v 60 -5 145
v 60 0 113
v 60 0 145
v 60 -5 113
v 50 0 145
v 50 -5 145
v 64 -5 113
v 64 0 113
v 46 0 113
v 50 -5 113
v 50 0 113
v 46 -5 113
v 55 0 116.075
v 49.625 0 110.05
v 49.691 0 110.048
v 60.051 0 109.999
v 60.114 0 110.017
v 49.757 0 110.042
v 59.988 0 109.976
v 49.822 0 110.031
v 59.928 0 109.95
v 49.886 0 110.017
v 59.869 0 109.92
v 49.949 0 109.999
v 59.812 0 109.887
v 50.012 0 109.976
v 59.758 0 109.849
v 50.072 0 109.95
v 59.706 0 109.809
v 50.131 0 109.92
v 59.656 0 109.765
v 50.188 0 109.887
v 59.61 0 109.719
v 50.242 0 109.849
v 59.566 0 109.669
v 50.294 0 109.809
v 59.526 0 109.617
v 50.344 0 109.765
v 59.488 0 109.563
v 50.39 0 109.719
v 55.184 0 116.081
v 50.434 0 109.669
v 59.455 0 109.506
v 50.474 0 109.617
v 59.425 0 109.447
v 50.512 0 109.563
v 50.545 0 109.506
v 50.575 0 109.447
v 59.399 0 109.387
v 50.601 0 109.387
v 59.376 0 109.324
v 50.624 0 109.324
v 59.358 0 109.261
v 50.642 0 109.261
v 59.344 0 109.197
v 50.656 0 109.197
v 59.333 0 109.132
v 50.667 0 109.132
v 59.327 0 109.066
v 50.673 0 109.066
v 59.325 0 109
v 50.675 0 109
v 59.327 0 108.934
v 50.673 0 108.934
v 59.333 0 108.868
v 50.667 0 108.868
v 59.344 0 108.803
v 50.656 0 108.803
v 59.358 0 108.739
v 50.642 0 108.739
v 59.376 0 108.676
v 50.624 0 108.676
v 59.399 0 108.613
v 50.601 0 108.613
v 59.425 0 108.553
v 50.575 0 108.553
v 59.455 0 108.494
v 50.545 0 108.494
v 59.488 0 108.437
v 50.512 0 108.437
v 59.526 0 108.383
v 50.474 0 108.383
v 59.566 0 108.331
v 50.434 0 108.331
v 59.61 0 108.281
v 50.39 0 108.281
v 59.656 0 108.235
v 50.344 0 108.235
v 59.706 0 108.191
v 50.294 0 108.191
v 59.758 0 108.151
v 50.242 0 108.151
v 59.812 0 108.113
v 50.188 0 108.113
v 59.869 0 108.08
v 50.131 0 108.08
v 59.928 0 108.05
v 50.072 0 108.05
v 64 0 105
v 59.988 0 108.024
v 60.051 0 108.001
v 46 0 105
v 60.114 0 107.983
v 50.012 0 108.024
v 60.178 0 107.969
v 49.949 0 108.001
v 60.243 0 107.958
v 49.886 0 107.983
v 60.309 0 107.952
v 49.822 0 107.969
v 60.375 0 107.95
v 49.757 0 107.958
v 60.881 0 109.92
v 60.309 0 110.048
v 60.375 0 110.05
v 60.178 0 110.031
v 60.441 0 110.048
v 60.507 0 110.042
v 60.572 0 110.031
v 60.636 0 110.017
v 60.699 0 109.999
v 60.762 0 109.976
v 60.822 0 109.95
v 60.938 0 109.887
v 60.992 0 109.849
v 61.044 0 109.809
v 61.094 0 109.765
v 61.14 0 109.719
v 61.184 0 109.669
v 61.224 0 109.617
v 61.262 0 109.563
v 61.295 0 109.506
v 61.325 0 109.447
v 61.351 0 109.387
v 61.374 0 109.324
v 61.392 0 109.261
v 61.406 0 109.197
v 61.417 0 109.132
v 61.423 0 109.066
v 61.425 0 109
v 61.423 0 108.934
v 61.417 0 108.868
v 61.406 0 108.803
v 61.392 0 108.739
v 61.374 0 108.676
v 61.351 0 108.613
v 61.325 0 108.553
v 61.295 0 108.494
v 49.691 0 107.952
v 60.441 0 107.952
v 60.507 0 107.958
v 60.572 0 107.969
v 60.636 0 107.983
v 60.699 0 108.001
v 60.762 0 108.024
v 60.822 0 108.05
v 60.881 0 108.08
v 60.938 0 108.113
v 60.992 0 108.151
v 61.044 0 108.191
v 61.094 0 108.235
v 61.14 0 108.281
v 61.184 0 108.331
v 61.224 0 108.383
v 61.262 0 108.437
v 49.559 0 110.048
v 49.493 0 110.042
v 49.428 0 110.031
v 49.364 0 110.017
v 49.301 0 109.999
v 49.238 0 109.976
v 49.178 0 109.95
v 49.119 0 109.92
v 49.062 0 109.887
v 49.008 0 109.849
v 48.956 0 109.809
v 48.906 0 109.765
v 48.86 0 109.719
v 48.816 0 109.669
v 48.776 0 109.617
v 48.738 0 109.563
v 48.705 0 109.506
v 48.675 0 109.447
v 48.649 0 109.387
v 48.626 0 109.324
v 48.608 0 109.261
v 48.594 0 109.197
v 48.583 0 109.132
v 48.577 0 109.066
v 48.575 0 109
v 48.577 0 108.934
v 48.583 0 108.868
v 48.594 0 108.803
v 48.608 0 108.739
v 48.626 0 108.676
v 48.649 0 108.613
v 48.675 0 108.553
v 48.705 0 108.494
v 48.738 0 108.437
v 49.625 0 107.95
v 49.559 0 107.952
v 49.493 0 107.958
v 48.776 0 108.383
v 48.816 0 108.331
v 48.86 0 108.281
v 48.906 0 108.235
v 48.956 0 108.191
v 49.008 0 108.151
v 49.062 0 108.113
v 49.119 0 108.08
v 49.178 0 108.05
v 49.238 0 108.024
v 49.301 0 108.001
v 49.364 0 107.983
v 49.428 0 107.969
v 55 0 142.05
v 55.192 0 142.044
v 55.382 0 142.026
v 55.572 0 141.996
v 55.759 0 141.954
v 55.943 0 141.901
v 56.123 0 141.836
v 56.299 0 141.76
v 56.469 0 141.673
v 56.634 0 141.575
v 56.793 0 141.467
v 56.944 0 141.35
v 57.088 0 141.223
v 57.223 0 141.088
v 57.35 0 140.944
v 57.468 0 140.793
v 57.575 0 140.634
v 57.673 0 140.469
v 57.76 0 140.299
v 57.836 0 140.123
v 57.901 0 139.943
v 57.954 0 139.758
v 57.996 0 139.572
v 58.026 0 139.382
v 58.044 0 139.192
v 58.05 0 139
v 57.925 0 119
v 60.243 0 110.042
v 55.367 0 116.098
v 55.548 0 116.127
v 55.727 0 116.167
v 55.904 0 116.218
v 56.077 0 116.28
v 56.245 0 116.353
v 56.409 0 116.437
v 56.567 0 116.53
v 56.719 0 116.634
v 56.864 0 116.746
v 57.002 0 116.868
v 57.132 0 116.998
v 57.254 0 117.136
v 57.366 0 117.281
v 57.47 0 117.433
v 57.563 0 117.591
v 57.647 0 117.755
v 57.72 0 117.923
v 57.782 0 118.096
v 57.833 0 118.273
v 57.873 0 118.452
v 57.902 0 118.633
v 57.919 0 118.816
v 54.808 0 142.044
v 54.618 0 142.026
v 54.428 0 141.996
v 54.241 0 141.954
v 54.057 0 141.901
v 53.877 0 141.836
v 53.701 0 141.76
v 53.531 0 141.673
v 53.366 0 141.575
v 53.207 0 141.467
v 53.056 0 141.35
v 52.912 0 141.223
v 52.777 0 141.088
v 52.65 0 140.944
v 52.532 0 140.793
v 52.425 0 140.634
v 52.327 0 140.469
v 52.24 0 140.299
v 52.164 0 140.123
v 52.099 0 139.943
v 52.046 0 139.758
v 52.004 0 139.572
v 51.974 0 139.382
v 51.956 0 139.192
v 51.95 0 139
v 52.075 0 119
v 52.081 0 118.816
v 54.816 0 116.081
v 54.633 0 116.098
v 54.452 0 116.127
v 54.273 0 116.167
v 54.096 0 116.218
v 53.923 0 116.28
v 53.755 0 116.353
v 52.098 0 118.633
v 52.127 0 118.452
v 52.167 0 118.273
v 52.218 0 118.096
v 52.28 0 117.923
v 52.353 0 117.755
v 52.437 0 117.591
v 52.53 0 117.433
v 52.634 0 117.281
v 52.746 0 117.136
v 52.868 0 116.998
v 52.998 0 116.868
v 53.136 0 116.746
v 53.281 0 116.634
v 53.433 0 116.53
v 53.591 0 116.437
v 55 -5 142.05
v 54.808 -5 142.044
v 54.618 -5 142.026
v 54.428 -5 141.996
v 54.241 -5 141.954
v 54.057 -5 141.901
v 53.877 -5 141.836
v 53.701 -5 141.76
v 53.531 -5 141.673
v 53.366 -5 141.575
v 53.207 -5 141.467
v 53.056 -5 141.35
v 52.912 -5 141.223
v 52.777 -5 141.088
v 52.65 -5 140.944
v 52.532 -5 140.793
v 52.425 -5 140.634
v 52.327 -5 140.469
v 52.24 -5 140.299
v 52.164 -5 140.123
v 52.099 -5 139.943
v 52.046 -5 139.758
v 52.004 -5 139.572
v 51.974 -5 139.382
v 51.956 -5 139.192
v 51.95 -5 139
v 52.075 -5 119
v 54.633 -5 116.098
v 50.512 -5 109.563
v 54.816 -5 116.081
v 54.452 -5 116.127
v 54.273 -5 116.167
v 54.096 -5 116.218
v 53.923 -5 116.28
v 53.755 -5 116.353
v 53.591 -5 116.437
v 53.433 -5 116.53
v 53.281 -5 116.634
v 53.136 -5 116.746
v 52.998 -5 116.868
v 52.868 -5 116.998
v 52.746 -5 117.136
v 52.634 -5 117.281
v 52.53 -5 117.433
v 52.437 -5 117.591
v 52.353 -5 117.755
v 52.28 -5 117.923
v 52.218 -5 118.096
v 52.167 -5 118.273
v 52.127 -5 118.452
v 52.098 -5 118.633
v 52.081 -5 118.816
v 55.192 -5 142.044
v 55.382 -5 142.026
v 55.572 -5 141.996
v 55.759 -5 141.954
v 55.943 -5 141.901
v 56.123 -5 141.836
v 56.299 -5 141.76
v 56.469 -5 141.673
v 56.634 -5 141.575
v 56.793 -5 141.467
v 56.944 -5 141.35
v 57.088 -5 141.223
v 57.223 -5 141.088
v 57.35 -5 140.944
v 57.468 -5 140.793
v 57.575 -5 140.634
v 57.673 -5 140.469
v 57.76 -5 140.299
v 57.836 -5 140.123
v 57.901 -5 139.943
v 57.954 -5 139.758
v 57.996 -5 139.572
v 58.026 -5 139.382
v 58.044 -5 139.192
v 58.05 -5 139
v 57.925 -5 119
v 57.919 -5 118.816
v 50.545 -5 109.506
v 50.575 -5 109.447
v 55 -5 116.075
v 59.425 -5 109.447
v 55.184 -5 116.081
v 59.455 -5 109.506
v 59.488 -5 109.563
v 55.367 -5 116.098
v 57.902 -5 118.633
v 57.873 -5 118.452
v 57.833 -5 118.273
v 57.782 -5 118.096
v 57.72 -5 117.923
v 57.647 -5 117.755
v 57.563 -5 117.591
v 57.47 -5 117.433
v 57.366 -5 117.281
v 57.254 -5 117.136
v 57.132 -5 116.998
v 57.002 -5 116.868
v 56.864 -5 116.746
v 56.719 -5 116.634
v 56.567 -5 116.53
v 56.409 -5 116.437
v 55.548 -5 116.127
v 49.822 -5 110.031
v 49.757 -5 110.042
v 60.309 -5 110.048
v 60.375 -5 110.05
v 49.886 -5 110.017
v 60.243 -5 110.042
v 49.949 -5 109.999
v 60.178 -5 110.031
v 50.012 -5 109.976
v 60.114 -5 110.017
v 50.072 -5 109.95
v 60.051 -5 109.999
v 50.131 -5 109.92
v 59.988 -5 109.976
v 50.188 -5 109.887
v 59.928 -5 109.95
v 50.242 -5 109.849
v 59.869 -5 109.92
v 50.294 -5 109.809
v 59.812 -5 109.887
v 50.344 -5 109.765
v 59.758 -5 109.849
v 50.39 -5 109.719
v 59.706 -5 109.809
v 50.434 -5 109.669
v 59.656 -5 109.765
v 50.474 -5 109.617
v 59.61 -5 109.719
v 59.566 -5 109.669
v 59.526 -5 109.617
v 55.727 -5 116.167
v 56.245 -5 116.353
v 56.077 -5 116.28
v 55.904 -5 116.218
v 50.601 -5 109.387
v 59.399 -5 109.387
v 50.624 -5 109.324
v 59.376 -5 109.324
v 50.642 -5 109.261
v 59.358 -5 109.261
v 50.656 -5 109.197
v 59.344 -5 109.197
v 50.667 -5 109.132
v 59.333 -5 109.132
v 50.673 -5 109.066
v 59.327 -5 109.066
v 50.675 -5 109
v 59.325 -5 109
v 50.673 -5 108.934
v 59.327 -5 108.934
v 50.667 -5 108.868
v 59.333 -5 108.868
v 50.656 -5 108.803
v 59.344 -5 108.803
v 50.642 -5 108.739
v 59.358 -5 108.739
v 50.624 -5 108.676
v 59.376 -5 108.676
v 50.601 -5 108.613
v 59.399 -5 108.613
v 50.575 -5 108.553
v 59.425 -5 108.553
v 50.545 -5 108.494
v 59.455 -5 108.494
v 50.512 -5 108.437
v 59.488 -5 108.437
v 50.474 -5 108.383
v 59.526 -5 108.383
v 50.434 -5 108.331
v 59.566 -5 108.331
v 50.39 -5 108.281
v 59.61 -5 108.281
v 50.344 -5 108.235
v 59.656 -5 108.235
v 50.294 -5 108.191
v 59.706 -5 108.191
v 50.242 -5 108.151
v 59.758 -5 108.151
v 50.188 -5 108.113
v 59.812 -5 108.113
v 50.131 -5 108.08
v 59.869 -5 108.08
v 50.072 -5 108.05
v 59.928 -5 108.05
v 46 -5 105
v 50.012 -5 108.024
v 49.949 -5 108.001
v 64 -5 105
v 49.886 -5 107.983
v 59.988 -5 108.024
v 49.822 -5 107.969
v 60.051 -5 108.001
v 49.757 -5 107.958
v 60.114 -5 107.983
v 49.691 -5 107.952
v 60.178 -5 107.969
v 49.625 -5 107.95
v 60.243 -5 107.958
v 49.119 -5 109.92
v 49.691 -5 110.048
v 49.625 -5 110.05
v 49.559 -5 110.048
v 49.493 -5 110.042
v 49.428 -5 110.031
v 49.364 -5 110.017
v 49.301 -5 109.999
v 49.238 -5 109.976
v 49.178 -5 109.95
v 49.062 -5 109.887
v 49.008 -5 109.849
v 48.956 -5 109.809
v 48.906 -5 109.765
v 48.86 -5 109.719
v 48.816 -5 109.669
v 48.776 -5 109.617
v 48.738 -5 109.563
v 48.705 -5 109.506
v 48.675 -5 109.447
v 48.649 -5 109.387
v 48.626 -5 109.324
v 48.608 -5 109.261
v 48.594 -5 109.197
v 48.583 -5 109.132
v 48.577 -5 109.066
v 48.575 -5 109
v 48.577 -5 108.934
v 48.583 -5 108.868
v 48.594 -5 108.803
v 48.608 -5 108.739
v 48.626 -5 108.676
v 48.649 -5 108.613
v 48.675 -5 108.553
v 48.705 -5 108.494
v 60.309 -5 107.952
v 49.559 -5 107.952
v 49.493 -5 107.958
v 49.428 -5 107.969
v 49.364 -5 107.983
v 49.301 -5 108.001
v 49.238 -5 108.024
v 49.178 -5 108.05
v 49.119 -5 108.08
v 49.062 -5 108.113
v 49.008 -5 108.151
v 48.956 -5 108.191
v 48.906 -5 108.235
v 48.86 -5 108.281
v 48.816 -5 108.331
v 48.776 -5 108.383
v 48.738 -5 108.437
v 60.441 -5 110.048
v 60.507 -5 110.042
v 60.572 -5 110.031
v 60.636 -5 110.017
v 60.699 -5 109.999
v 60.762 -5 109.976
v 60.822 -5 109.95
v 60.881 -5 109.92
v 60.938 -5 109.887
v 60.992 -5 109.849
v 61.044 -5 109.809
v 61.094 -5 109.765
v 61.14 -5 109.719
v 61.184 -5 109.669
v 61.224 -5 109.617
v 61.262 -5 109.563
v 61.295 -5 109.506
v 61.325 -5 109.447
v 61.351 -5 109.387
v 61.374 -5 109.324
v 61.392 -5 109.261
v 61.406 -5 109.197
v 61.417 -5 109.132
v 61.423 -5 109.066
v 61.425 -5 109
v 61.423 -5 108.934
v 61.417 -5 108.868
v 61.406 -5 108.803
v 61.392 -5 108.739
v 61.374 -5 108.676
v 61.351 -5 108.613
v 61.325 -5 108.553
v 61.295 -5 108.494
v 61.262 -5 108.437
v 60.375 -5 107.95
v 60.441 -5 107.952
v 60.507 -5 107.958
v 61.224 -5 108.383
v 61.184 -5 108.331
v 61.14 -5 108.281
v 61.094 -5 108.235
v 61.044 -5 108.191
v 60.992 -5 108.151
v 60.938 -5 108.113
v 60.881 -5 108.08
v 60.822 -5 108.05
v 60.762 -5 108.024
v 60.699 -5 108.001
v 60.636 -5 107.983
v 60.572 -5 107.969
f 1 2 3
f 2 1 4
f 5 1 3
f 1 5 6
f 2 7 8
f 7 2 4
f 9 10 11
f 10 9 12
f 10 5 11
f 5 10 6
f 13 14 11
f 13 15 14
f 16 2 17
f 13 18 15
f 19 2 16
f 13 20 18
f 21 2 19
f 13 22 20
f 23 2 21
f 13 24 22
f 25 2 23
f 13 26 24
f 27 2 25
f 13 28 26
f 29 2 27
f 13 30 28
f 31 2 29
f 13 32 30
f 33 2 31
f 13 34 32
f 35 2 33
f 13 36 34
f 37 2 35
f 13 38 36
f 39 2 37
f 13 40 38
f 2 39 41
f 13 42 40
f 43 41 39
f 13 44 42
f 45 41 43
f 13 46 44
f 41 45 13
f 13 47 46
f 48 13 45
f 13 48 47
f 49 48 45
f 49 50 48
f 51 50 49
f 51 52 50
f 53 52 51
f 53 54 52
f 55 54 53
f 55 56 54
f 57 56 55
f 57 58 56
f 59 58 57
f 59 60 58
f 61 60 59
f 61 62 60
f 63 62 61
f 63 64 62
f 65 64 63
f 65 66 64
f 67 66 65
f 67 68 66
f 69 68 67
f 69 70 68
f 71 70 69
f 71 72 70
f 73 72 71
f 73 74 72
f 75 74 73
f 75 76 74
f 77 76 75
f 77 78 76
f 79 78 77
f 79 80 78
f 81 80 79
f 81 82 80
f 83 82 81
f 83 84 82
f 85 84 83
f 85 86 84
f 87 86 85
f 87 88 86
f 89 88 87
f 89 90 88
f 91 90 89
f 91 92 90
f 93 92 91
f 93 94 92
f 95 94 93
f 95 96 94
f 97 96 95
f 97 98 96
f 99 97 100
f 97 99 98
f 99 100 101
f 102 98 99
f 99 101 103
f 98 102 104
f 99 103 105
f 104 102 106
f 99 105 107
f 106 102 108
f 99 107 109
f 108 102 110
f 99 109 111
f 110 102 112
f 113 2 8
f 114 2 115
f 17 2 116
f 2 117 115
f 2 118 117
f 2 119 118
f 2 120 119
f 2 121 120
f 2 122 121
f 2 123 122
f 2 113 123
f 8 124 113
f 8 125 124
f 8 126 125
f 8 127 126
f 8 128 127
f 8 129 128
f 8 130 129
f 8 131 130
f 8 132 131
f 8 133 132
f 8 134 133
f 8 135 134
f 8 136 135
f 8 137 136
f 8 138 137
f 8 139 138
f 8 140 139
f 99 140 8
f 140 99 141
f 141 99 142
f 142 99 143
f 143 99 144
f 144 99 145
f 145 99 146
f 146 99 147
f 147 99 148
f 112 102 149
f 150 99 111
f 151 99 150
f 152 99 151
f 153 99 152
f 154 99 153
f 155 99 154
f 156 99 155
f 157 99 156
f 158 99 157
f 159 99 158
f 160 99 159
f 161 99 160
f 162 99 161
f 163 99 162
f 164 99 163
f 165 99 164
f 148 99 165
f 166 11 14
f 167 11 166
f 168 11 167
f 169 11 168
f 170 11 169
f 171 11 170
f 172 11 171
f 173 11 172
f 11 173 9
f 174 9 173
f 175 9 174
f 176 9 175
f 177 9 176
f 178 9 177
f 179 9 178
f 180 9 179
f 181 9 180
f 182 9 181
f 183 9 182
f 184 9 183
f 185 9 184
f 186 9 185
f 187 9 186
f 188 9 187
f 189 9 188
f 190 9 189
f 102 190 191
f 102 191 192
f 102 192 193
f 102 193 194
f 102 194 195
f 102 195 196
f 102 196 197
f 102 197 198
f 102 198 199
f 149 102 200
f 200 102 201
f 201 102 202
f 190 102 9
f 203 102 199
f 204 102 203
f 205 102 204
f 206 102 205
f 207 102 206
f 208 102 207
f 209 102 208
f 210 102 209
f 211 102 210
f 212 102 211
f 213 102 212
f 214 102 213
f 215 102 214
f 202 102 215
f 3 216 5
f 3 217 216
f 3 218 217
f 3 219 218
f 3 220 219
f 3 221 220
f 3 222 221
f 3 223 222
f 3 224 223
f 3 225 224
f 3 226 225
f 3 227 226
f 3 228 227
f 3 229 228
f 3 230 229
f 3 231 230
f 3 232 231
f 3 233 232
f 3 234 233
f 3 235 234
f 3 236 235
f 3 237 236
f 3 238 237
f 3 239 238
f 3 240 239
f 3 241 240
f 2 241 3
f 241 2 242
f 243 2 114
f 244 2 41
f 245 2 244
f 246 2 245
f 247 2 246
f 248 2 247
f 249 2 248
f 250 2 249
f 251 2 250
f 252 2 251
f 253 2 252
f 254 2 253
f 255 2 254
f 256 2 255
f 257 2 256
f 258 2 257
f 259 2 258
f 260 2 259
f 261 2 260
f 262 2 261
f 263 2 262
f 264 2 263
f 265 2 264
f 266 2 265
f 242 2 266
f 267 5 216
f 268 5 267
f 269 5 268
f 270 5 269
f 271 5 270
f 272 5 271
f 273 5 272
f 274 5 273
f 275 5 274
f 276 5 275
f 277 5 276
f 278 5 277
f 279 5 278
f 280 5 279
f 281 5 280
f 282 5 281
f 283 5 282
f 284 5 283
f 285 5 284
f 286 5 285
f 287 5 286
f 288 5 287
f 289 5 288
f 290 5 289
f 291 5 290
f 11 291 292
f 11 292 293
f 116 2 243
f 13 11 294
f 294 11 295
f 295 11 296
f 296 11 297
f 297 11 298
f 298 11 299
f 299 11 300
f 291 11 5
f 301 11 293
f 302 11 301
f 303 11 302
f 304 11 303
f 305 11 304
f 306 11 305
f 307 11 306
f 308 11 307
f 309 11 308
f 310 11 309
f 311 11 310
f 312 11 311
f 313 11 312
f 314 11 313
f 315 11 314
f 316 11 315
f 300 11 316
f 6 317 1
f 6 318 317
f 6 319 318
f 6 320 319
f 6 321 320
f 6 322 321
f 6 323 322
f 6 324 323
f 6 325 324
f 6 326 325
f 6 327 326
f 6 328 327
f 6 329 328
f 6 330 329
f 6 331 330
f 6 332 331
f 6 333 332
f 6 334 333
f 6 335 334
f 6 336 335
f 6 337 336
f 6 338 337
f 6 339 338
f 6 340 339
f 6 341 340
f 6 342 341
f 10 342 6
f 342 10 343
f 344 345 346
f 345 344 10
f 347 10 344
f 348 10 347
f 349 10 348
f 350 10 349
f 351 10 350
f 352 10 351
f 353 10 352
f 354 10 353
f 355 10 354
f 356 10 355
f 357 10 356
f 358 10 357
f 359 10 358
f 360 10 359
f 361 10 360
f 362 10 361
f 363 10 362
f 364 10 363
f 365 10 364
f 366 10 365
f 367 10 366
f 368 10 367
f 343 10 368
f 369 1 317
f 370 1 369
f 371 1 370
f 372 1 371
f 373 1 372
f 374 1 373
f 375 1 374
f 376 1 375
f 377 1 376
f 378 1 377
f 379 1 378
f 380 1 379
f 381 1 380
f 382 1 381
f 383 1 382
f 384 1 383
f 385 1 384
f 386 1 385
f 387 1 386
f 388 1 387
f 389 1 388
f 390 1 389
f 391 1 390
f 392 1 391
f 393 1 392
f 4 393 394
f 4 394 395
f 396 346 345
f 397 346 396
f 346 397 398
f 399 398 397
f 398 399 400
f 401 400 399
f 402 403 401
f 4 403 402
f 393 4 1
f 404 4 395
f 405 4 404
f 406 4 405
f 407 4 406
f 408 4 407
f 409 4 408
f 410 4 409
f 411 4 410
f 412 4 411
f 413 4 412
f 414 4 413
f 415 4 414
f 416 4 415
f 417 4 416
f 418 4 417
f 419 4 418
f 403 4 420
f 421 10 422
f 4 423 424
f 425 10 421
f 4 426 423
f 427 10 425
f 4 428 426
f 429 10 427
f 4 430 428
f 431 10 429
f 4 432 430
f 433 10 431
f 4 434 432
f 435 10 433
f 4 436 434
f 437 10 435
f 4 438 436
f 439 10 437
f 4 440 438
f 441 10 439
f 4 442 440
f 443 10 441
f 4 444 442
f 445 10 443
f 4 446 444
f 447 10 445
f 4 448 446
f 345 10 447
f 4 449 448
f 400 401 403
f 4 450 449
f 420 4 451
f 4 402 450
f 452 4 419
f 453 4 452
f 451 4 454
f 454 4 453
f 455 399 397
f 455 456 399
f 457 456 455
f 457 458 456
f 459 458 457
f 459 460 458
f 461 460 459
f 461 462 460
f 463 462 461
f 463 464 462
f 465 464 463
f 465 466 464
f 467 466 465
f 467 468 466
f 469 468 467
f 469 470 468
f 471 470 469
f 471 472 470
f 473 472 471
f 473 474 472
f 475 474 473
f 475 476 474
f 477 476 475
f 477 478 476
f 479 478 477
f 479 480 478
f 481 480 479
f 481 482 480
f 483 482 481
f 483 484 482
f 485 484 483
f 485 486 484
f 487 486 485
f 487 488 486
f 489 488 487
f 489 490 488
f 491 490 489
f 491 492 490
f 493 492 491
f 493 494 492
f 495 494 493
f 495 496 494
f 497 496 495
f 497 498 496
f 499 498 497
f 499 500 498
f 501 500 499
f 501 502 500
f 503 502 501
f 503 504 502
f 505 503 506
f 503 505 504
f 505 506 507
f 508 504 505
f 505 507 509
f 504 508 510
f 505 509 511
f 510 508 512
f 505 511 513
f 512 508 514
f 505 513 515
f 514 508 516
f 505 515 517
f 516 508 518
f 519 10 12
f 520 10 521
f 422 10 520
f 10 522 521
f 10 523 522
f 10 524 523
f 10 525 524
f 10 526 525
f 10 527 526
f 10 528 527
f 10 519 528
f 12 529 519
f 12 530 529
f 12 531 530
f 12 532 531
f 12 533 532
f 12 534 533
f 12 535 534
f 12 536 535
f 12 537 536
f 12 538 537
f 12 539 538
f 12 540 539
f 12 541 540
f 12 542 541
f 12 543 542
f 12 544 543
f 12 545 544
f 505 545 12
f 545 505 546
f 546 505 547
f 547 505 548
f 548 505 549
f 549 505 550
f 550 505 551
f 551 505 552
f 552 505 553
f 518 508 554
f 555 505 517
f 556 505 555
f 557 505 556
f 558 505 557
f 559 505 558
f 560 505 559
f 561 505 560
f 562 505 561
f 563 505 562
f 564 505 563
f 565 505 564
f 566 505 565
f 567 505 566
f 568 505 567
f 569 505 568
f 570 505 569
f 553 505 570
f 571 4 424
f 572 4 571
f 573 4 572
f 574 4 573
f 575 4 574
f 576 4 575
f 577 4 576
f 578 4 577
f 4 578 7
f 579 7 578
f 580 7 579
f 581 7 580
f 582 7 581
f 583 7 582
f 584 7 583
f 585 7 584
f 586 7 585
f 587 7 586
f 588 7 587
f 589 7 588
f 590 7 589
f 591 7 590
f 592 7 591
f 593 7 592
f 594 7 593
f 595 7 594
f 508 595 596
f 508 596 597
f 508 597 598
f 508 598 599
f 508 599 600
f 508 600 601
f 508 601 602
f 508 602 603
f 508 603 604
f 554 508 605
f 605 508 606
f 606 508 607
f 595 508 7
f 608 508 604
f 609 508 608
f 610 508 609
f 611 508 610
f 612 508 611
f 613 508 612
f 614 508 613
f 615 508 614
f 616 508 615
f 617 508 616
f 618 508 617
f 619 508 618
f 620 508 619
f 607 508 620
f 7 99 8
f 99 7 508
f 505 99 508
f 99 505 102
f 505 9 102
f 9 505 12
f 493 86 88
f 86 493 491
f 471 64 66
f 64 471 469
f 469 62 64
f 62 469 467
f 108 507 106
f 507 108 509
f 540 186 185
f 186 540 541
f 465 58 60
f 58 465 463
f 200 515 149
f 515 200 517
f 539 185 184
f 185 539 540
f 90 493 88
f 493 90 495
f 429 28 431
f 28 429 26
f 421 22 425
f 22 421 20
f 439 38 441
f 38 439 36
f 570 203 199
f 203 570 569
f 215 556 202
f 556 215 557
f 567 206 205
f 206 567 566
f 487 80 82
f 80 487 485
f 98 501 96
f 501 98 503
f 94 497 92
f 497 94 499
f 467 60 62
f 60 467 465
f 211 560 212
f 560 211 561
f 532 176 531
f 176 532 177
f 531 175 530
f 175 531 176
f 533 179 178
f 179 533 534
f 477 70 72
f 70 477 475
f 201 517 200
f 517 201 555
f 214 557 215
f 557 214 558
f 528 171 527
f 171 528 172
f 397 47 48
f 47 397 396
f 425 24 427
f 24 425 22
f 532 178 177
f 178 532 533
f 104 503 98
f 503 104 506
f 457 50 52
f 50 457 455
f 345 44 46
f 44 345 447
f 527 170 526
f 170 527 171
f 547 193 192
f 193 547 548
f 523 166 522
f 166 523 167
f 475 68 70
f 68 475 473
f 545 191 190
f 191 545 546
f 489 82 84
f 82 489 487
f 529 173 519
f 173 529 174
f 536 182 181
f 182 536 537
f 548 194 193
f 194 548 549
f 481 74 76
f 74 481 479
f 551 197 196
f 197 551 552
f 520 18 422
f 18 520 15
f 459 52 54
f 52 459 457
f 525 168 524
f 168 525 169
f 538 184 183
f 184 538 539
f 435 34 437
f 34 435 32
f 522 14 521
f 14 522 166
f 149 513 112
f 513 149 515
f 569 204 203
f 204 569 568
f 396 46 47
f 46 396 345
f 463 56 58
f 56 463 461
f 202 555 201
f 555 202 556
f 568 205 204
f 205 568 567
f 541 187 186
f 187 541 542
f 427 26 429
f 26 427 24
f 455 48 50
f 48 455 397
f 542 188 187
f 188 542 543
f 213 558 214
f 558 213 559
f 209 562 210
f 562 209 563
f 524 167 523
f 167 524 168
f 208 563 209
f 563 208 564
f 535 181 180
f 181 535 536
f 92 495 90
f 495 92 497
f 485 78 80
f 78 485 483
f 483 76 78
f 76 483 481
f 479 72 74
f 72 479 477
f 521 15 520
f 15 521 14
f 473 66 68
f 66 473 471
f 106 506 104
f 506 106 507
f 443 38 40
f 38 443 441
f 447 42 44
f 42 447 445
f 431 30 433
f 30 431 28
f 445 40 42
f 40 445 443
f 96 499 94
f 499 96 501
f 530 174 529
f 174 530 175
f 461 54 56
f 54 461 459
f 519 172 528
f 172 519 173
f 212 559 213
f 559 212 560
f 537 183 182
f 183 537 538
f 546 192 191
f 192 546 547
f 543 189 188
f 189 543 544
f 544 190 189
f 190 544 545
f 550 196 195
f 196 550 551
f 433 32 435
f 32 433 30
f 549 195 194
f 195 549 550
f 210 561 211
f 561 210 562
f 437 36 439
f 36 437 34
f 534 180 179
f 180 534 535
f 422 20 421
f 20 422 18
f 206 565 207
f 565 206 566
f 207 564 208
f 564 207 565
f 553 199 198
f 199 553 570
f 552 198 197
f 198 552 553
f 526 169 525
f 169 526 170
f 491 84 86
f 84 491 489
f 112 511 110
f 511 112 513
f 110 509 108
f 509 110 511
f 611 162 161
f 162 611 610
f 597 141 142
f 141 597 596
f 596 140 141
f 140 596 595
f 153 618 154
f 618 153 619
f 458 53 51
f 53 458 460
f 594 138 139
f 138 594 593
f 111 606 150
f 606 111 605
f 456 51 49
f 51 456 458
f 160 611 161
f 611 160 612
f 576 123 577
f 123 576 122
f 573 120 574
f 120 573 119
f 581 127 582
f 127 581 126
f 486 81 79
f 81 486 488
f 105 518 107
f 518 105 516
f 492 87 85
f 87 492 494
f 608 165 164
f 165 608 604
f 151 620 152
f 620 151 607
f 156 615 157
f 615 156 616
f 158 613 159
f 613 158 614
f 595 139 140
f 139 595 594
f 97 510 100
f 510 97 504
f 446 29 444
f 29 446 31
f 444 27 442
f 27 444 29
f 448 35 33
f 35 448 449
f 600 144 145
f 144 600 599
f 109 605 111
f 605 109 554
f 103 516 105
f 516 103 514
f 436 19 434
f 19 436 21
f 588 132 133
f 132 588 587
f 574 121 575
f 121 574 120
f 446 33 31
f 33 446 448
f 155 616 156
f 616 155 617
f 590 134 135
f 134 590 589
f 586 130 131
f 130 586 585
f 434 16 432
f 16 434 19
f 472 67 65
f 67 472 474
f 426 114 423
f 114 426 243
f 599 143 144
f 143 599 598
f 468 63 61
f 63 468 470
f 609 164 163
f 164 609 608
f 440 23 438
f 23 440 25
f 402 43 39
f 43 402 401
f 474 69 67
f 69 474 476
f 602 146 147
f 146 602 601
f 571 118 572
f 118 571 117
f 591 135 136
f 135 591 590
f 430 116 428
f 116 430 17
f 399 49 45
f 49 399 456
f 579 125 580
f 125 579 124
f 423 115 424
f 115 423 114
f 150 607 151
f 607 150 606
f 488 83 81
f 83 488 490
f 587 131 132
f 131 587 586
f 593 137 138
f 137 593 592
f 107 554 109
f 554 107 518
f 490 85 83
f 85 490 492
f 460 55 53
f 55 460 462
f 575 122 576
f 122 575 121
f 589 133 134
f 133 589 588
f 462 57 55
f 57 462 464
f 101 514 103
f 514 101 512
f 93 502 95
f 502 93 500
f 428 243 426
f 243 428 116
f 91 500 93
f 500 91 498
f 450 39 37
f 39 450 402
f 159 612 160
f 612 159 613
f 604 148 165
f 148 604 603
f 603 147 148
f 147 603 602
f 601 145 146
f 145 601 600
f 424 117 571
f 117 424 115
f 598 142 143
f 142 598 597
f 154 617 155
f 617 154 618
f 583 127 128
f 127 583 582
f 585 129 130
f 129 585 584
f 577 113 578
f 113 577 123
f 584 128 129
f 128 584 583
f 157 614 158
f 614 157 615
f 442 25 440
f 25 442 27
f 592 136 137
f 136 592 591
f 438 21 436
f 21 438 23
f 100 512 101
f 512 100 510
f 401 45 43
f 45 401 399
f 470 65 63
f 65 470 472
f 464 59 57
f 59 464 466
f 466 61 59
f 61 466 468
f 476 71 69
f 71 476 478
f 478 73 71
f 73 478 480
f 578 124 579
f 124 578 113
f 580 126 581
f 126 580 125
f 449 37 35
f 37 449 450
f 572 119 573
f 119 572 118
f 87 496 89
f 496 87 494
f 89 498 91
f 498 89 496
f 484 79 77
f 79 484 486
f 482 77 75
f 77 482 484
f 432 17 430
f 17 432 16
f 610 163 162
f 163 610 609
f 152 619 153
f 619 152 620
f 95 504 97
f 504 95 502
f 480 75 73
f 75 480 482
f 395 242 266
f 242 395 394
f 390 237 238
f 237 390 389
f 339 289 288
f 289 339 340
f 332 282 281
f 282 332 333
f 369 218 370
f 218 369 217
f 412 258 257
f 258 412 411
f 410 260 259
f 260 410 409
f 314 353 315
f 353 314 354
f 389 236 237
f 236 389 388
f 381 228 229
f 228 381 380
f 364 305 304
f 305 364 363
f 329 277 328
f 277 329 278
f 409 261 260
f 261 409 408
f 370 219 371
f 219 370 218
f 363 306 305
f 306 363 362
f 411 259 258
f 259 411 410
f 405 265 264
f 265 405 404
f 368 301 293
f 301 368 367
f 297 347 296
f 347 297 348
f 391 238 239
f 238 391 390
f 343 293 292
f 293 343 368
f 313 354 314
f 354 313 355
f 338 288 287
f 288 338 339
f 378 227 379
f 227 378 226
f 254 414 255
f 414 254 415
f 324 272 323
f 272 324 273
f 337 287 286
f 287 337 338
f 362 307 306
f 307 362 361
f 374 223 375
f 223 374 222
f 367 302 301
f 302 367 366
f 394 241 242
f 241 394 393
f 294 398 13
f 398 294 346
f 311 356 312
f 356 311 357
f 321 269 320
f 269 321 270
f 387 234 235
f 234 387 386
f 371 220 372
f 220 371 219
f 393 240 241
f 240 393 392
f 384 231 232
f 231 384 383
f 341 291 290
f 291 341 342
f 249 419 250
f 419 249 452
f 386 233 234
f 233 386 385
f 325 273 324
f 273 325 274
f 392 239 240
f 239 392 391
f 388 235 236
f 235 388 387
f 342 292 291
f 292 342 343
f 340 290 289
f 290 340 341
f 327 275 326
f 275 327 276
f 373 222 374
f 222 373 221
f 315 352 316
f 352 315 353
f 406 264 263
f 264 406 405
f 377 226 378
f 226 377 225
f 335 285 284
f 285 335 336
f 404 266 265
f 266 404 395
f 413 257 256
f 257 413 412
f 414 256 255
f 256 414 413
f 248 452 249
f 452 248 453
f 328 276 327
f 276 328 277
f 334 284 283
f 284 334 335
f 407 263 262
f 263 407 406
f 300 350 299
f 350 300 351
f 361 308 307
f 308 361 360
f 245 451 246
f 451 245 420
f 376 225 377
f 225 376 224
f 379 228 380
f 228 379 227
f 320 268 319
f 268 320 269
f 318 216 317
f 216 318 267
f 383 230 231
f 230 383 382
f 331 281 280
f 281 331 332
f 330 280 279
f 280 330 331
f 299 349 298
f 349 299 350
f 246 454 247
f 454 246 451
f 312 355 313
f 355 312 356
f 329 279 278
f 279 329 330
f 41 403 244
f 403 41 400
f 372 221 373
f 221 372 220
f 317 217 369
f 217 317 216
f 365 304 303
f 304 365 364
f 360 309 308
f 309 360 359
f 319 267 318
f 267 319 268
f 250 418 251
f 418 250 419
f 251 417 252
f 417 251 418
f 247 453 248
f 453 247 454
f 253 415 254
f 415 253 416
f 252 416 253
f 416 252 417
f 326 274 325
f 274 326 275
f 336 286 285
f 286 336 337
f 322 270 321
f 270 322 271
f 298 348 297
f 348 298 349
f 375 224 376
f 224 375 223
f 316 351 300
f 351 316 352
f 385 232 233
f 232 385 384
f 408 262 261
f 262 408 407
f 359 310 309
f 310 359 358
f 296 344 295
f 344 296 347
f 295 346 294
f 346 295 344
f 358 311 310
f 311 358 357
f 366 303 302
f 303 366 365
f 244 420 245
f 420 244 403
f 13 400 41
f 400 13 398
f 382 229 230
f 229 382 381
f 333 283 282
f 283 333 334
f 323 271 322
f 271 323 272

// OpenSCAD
// ----- ----- ----- Declaração de Variáveis ----- ----- ----- //
res=100;
folga1=0.125;

esp=5;
compriObilongo=20;
largObi=5.85;

basePortax=56;
basePortay=2.85;
basePortaz=15;
PortaR=5.7/2;
PortaAlt=basePortay;
entrePorta=(52.7+41.25)/2;

haste1x=30;
haste1z=30;

haste2x=60;
haste2z=10;

haste3x=10;
haste3z=60+20;

haste4x=10;
haste4z=10;

portax=18;
portaz=8;

entreFuros=(8.6+12.9)/2;
rFuro=2.1/2;

vao=0.5;

entrePard=58-22-6*folga1;

// ----- ----- ----- Declaração de Funções ----- ----- ----- //

// ----- ----- ----- MAIN ----- ----- ----- //
translate([0,0,basePortaz])
difference(){
    translate([0,0,0]){
        //cube([haste2x,esp,haste1z]);
        //translate([0,-esp-(3/2)*basePortay,0])cube([haste2x,esp+(3/2)*basePortay,haste1z]);
        //translate([0,0,haste1z])cube([haste2x,esp,haste2z]);
        //translate([0,0,haste1z+haste2z])cube([haste3x,esp,haste3z]);
        //translate([0,0,haste1z+haste2z+haste3z])cube([haste2x,esp,haste2z]);
        //translate([haste2x-haste3x,0,haste1z+haste2z])cube([haste4x,esp,haste4z-portaz]);
        //translate([haste2x-haste3x+haste4x/2-portax/2,-esp,haste1z+haste2z+haste4z-portaz])cube([portax,esp,portaz]);
        //translate([haste2x-haste3x+haste4x/2-portax/2,0,haste1z+haste2z+haste4z-portaz])cube([portax,esp,portaz]);//
        //translate([haste2x-haste3x+haste4x/2-portax/2,-2*esp,haste1z+haste2z+haste4z-portaz])cube([portax,esp,portaz]);
        //translate([haste2x-haste3x,0,haste1z+haste2z+haste3z-haste4z-compriObilongo+portaz])cube([haste4x,esp,haste4z+compriObilongo-portaz]);
        translate([haste2x-haste3x,-esp,haste1z+haste2z+haste3z-haste4z-compriObilongo+portaz])cube([haste4x,esp,haste4z+compriObilongo-portaz+haste4z]);
        translate([haste2x-haste3x+haste4x/2-portax/2,-esp,haste1z+haste2z+haste3z-haste4z-compriObilongo])cube([portax,esp,portaz]);
        //translate([haste2x-haste3x+haste4x/2-portax/2,-2*esp,haste1z+haste2z+haste3z-haste4z-compriObilongo])cube([portax,esp,portaz]);
    }
    
    // Furos do Porta
    #translate([-entreFuros/2,-2*esp,0])
    #translate([haste2x-haste4x/2,0,haste1z+haste2z+haste4z-portaz/2])
    #rotate([-90,0,0])
    #cylinder(3*esp,rFuro,rFuro,$fn=res);
    
    #translate([entreFuros/2,-2*esp,0])
    #translate([haste2x-haste4x/2,0,haste1z+haste2z+haste4z-portaz/2])
    #rotate([-90,0,0])
    #cylinder(3*esp,rFuro,rFuro,$fn=res);
    
    #translate([-entreFuros/2,-2*esp,haste1z+haste2z+haste3z-haste4z-20])
    #translate([haste2x-haste4x/2,0,portaz/2])
    #rotate([-90,0,0])
    #cylinder(2*esp,rFuro,rFuro,$fn=res);
    
    #translate([entreFuros/2,-2*esp,haste1z+haste2z+haste3z-haste4z-20])
    #translate([haste2x-haste4x/2,0,portaz/2])
    #rotate([-90,0,0])
    #cylinder(2*esp,rFuro,rFuro,$fn=res);
    
    //Furo Obilongo de Cima
    #hull(){
        #translate([haste2x-haste4x/2,-2*esp,haste1z+haste2z*1.2+haste3z-haste4z-20+(3/2)*portaz])
        #rotate([-90,0,0])
        #cylinder(4*esp,largObi/2,largObi/2,$fn=res);
        
        #translate([0,0,haste4z+compriObilongo-2*portaz+haste2z*0.8])
        #translate([haste2x-haste4x/2,-2*esp,haste1z+haste2z+haste3z-haste4z-20+(3/2)*portaz])
        #rotate([-90,0,0])
        #cylinder(4*esp,largObi/2+folga1,largObi/2+folga1,$fn=res);
    }
    
    // Furo Obilongo de Baixo
    #hull(){
        #translate([haste2x-haste4x/2,-2*esp,haste1z+haste2z*0.8+haste3z-3*haste4z-3*20+(1)*portaz])
        #rotate([-90,0,0])
        #cylinder(4*esp,largObi/2,largObi/2,$fn=res);
        
        #translate([0,0,-(haste4z+compriObilongo-2*portaz+haste2z*0.8)])
        #translate([haste2x-haste4x/2,-2*esp,haste1z+haste2z+haste3z-3*haste4z-3*20+(1)*portaz])
        #rotate([-90,0,0])
        #cylinder(4*esp,largObi/2+folga1,largObi/2+folga1,$fn=res);
    }
    
    #translate([-4*folga1,0,-portaz-(haste4z+compriObilongo-2*portaz+haste2z)])
    #translate([haste2x-haste3x+haste4x/2-portax/2,-2*esp,haste1z+haste2z+haste4z-portaz])
    #cube([portax+8*folga1,2*esp,portaz+haste4z+compriObilongo-2*portaz+haste2z]);
    
    //#translate([haste2x-haste4x/2,-esp,0])
    //#rotate([0,0,45])
    //#translate([-vao/2,-vao/2,0])
    //#cube([vao,vao,haste1z+2*haste2z+haste3z]);
}
/*
difference(){
    translate([haste2x-haste4x/2-basePortax/2,-esp-basePortay/2,0])cube([basePortax,basePortay,basePortaz]);
    
    #translate([haste2x-haste4x/2-entrePorta/2,-esp+basePortay/2,basePortaz/2])
    #rotate([90,0,0])
    #cylinder(PortaAlt,PortaR,PortaR,$fn=res);
   
    #translate([haste2x-haste4x/2+entrePorta/2,-esp+basePortay/2,basePortaz/2])
    #rotate([90,0,0])
    #cylinder(PortaAlt,PortaR,PortaR,$fn=res);
    //entrePorta
}*/


/*// Sustentação 1 
poliedro1Points = [[                       haste2x, -(esp+(3/2)*basePortay),         basePortaz],  //0
                   [haste2x-haste4x/2+basePortax/2, -(esp+(3/2)*basePortay),         basePortaz],  //1
                   [haste2x-haste4x/2+basePortax/2,                     esp,         basePortaz],  //2
                   [                       haste2x,                     esp,         basePortaz],  //3
                   [                       haste2x, -(esp+(3/2)*basePortay), basePortaz+haste1z],  //4
                   [                       haste2x,                     esp, basePortaz+haste1z]]; //5
 
poliedro1Faces = [[0,1,2,3],  // baixo
                    [0,1,4],  // frente
                              // cima
                  [1,4,5,2],  // direita
                    [5,3,2],  // trazeira
                  [5,4,0,3]]; // esquerda

translate([haste2x,-(esp+(3/2)*basePortay),basePortaz])cube([-haste4x/2+basePortax/2,esp+(esp+(3/2)*basePortay),10]);

// Sustentação 2
translate([basePortax/2-entrePard/2,0,0])
translate([haste2x-haste4x/2-basePortax/2,-esp-(3/2)*basePortay,0])
cube([entrePard,esp+esp+(3/2)*basePortay,basePortaz]);*/

// Furo Obilongo de Baixo
//translate([haste2x-haste3x,-esp,haste1z+haste2z+haste3z-haste4z-compriObilongo+portaz-3*haste4z-3*20+portaz+10])cube([haste4x,esp,haste4z+compriObilongo-portaz+haste4z]);
